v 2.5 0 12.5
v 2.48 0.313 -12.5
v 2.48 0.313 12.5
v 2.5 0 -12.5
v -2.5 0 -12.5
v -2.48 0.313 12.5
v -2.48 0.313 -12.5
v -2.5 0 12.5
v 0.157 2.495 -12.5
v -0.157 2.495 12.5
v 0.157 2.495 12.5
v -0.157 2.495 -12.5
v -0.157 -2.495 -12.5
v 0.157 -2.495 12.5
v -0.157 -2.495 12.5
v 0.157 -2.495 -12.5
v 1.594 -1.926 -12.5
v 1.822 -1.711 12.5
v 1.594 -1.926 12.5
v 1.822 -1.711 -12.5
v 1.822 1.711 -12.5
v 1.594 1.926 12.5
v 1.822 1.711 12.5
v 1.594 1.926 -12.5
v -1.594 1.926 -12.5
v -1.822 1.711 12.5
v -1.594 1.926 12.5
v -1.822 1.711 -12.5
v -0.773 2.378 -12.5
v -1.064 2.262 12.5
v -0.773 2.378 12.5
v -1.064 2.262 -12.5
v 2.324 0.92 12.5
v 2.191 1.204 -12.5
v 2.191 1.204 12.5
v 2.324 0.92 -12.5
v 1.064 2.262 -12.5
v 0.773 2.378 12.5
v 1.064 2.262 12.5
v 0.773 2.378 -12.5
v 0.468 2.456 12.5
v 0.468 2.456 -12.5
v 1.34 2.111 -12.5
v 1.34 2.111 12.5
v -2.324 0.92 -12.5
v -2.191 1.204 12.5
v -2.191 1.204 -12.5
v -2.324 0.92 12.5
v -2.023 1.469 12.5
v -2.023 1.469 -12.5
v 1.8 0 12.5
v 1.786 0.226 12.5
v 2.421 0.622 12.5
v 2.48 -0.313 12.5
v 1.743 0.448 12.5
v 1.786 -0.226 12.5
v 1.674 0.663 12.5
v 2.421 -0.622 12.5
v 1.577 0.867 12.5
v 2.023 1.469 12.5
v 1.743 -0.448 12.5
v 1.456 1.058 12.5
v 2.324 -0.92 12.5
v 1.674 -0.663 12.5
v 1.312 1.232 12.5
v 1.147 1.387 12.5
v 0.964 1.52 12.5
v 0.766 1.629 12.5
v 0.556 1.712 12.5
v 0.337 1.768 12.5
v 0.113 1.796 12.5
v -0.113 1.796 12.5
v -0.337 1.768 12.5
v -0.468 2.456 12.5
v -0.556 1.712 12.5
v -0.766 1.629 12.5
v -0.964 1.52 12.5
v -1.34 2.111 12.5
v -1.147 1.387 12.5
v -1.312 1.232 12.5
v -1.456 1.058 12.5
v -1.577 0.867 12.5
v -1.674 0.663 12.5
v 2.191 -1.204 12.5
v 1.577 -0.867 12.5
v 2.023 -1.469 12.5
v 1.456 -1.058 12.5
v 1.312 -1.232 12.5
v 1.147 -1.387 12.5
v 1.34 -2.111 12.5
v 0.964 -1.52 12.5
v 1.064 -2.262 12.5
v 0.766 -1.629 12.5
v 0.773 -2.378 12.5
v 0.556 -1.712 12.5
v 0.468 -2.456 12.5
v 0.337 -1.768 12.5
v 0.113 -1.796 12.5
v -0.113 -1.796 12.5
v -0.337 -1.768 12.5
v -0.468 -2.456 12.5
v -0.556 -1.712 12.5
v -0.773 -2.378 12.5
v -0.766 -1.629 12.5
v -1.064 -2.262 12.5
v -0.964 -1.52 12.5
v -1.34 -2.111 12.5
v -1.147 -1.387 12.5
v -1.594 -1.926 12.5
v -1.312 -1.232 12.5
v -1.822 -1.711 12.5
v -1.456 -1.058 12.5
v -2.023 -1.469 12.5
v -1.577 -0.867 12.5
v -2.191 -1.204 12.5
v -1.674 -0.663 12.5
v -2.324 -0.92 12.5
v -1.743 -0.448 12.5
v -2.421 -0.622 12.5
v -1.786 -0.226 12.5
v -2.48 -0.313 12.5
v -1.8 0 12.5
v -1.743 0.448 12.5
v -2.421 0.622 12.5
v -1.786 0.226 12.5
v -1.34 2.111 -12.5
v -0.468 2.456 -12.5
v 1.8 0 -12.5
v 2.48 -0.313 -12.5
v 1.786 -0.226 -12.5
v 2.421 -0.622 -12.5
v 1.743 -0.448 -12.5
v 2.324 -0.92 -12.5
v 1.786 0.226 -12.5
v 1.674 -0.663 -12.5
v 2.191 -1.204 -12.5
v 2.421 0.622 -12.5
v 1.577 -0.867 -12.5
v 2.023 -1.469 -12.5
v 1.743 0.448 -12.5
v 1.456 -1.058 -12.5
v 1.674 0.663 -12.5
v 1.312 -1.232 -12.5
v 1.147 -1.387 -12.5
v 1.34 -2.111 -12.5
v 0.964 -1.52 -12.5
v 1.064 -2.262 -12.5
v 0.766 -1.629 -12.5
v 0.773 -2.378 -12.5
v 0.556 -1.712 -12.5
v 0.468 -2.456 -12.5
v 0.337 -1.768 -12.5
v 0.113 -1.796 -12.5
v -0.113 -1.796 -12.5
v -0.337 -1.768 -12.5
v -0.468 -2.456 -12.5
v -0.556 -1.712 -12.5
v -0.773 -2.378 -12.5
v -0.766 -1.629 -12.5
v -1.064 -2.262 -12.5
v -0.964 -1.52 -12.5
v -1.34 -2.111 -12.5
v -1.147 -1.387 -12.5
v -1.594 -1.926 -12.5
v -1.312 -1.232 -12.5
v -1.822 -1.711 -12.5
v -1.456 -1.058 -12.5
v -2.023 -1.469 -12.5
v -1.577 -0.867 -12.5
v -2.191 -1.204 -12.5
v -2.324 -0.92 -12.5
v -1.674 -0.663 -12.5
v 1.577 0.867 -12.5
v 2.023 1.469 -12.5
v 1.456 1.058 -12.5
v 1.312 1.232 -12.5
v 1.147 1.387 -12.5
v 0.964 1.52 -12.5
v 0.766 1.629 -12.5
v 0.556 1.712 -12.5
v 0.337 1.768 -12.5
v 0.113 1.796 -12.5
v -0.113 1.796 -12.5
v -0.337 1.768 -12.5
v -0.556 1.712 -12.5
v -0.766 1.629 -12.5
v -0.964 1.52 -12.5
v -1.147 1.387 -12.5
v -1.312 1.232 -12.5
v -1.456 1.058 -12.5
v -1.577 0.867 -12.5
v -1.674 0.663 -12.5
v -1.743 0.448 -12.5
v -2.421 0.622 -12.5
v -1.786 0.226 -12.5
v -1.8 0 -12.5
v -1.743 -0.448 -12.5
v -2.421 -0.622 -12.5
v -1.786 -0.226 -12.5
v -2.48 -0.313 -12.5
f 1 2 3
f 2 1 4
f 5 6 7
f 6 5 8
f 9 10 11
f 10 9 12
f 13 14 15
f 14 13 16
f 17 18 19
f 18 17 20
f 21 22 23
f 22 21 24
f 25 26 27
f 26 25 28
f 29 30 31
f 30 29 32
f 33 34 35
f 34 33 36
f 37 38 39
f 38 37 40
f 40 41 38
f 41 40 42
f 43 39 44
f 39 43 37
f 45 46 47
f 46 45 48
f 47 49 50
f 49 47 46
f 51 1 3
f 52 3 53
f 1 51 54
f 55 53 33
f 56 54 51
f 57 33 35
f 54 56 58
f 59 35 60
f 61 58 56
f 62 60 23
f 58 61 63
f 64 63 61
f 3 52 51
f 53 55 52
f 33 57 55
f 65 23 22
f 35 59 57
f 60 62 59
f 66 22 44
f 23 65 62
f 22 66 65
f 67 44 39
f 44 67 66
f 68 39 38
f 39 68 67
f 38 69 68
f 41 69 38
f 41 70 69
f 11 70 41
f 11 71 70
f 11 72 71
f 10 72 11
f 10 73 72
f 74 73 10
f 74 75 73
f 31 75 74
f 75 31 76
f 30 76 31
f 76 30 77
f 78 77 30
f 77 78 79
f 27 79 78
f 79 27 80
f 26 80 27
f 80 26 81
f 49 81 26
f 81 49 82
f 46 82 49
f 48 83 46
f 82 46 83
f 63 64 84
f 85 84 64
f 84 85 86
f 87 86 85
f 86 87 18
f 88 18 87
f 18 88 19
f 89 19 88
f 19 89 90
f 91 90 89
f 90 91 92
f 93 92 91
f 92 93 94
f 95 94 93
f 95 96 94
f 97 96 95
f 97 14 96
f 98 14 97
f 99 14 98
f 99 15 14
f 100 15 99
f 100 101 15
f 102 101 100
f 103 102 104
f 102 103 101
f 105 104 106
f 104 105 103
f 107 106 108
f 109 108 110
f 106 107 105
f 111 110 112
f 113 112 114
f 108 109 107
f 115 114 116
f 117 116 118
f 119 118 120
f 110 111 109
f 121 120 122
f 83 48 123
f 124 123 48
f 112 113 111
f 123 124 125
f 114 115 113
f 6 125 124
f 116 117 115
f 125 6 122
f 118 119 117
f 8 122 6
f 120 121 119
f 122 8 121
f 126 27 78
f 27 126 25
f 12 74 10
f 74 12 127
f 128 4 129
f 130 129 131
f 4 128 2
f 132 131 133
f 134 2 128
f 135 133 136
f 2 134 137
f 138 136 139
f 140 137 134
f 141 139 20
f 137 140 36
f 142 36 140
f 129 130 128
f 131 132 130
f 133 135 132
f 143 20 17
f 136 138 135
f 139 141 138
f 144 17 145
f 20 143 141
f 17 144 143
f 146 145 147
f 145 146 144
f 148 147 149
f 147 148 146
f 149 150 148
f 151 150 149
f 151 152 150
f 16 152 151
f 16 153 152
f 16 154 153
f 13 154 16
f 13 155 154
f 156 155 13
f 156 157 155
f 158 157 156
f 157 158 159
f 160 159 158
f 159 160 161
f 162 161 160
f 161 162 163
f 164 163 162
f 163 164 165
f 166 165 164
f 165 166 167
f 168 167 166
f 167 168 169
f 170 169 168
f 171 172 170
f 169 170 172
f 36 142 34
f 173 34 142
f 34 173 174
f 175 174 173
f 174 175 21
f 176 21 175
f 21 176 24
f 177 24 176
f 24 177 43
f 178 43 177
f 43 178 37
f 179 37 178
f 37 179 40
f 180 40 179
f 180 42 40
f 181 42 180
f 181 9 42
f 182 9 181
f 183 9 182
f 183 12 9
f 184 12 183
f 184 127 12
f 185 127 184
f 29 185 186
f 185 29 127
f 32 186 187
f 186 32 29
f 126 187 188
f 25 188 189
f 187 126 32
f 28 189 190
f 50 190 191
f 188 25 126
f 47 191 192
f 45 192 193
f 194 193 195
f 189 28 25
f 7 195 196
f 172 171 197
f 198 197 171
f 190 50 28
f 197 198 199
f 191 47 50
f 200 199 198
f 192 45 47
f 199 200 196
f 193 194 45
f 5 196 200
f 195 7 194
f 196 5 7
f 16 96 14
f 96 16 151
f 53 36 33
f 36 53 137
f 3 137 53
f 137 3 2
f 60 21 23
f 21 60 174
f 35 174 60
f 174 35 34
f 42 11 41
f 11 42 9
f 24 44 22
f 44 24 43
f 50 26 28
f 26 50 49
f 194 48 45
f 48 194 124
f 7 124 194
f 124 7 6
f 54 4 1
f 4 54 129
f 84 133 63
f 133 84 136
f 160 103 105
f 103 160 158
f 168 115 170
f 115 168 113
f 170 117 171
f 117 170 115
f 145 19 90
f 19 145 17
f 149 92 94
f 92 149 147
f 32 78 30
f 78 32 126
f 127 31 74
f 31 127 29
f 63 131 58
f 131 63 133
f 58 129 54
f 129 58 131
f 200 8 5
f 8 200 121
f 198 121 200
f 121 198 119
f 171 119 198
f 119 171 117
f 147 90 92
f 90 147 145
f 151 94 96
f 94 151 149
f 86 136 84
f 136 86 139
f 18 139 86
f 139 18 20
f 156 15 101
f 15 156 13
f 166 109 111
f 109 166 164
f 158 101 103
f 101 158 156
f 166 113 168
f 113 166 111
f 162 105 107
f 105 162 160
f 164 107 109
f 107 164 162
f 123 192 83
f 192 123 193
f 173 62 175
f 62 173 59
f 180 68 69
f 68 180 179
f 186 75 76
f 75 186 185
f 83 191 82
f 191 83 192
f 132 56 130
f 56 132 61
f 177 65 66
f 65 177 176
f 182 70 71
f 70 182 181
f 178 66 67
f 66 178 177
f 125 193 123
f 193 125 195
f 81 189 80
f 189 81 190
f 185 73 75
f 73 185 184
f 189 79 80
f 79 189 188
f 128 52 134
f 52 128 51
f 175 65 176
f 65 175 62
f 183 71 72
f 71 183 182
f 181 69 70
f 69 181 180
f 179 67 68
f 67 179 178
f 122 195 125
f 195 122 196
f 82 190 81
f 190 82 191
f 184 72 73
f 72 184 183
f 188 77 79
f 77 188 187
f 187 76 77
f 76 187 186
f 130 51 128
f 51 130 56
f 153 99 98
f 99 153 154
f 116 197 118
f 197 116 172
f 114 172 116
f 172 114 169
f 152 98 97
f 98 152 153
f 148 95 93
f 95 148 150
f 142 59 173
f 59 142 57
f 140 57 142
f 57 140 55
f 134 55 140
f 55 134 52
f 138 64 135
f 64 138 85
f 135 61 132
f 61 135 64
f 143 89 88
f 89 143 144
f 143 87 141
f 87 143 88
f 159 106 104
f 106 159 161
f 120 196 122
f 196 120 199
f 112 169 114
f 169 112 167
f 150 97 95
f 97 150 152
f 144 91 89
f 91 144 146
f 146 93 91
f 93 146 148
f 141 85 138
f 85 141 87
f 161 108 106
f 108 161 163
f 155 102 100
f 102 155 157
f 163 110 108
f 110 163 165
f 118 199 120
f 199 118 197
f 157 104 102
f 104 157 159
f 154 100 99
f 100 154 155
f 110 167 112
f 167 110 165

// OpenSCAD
$fn = 50;


difference() {
	union() {
		translate(v = [0, 0, -12.5000000000]) {
			cylinder(h = 25, r = 2.5000000000);
		}
	}
	union() {
		translate(v = [0, 0, -100.0000000000]) {
			cylinder(h = 200, r = 1.8000000000);
		}
	}
}
